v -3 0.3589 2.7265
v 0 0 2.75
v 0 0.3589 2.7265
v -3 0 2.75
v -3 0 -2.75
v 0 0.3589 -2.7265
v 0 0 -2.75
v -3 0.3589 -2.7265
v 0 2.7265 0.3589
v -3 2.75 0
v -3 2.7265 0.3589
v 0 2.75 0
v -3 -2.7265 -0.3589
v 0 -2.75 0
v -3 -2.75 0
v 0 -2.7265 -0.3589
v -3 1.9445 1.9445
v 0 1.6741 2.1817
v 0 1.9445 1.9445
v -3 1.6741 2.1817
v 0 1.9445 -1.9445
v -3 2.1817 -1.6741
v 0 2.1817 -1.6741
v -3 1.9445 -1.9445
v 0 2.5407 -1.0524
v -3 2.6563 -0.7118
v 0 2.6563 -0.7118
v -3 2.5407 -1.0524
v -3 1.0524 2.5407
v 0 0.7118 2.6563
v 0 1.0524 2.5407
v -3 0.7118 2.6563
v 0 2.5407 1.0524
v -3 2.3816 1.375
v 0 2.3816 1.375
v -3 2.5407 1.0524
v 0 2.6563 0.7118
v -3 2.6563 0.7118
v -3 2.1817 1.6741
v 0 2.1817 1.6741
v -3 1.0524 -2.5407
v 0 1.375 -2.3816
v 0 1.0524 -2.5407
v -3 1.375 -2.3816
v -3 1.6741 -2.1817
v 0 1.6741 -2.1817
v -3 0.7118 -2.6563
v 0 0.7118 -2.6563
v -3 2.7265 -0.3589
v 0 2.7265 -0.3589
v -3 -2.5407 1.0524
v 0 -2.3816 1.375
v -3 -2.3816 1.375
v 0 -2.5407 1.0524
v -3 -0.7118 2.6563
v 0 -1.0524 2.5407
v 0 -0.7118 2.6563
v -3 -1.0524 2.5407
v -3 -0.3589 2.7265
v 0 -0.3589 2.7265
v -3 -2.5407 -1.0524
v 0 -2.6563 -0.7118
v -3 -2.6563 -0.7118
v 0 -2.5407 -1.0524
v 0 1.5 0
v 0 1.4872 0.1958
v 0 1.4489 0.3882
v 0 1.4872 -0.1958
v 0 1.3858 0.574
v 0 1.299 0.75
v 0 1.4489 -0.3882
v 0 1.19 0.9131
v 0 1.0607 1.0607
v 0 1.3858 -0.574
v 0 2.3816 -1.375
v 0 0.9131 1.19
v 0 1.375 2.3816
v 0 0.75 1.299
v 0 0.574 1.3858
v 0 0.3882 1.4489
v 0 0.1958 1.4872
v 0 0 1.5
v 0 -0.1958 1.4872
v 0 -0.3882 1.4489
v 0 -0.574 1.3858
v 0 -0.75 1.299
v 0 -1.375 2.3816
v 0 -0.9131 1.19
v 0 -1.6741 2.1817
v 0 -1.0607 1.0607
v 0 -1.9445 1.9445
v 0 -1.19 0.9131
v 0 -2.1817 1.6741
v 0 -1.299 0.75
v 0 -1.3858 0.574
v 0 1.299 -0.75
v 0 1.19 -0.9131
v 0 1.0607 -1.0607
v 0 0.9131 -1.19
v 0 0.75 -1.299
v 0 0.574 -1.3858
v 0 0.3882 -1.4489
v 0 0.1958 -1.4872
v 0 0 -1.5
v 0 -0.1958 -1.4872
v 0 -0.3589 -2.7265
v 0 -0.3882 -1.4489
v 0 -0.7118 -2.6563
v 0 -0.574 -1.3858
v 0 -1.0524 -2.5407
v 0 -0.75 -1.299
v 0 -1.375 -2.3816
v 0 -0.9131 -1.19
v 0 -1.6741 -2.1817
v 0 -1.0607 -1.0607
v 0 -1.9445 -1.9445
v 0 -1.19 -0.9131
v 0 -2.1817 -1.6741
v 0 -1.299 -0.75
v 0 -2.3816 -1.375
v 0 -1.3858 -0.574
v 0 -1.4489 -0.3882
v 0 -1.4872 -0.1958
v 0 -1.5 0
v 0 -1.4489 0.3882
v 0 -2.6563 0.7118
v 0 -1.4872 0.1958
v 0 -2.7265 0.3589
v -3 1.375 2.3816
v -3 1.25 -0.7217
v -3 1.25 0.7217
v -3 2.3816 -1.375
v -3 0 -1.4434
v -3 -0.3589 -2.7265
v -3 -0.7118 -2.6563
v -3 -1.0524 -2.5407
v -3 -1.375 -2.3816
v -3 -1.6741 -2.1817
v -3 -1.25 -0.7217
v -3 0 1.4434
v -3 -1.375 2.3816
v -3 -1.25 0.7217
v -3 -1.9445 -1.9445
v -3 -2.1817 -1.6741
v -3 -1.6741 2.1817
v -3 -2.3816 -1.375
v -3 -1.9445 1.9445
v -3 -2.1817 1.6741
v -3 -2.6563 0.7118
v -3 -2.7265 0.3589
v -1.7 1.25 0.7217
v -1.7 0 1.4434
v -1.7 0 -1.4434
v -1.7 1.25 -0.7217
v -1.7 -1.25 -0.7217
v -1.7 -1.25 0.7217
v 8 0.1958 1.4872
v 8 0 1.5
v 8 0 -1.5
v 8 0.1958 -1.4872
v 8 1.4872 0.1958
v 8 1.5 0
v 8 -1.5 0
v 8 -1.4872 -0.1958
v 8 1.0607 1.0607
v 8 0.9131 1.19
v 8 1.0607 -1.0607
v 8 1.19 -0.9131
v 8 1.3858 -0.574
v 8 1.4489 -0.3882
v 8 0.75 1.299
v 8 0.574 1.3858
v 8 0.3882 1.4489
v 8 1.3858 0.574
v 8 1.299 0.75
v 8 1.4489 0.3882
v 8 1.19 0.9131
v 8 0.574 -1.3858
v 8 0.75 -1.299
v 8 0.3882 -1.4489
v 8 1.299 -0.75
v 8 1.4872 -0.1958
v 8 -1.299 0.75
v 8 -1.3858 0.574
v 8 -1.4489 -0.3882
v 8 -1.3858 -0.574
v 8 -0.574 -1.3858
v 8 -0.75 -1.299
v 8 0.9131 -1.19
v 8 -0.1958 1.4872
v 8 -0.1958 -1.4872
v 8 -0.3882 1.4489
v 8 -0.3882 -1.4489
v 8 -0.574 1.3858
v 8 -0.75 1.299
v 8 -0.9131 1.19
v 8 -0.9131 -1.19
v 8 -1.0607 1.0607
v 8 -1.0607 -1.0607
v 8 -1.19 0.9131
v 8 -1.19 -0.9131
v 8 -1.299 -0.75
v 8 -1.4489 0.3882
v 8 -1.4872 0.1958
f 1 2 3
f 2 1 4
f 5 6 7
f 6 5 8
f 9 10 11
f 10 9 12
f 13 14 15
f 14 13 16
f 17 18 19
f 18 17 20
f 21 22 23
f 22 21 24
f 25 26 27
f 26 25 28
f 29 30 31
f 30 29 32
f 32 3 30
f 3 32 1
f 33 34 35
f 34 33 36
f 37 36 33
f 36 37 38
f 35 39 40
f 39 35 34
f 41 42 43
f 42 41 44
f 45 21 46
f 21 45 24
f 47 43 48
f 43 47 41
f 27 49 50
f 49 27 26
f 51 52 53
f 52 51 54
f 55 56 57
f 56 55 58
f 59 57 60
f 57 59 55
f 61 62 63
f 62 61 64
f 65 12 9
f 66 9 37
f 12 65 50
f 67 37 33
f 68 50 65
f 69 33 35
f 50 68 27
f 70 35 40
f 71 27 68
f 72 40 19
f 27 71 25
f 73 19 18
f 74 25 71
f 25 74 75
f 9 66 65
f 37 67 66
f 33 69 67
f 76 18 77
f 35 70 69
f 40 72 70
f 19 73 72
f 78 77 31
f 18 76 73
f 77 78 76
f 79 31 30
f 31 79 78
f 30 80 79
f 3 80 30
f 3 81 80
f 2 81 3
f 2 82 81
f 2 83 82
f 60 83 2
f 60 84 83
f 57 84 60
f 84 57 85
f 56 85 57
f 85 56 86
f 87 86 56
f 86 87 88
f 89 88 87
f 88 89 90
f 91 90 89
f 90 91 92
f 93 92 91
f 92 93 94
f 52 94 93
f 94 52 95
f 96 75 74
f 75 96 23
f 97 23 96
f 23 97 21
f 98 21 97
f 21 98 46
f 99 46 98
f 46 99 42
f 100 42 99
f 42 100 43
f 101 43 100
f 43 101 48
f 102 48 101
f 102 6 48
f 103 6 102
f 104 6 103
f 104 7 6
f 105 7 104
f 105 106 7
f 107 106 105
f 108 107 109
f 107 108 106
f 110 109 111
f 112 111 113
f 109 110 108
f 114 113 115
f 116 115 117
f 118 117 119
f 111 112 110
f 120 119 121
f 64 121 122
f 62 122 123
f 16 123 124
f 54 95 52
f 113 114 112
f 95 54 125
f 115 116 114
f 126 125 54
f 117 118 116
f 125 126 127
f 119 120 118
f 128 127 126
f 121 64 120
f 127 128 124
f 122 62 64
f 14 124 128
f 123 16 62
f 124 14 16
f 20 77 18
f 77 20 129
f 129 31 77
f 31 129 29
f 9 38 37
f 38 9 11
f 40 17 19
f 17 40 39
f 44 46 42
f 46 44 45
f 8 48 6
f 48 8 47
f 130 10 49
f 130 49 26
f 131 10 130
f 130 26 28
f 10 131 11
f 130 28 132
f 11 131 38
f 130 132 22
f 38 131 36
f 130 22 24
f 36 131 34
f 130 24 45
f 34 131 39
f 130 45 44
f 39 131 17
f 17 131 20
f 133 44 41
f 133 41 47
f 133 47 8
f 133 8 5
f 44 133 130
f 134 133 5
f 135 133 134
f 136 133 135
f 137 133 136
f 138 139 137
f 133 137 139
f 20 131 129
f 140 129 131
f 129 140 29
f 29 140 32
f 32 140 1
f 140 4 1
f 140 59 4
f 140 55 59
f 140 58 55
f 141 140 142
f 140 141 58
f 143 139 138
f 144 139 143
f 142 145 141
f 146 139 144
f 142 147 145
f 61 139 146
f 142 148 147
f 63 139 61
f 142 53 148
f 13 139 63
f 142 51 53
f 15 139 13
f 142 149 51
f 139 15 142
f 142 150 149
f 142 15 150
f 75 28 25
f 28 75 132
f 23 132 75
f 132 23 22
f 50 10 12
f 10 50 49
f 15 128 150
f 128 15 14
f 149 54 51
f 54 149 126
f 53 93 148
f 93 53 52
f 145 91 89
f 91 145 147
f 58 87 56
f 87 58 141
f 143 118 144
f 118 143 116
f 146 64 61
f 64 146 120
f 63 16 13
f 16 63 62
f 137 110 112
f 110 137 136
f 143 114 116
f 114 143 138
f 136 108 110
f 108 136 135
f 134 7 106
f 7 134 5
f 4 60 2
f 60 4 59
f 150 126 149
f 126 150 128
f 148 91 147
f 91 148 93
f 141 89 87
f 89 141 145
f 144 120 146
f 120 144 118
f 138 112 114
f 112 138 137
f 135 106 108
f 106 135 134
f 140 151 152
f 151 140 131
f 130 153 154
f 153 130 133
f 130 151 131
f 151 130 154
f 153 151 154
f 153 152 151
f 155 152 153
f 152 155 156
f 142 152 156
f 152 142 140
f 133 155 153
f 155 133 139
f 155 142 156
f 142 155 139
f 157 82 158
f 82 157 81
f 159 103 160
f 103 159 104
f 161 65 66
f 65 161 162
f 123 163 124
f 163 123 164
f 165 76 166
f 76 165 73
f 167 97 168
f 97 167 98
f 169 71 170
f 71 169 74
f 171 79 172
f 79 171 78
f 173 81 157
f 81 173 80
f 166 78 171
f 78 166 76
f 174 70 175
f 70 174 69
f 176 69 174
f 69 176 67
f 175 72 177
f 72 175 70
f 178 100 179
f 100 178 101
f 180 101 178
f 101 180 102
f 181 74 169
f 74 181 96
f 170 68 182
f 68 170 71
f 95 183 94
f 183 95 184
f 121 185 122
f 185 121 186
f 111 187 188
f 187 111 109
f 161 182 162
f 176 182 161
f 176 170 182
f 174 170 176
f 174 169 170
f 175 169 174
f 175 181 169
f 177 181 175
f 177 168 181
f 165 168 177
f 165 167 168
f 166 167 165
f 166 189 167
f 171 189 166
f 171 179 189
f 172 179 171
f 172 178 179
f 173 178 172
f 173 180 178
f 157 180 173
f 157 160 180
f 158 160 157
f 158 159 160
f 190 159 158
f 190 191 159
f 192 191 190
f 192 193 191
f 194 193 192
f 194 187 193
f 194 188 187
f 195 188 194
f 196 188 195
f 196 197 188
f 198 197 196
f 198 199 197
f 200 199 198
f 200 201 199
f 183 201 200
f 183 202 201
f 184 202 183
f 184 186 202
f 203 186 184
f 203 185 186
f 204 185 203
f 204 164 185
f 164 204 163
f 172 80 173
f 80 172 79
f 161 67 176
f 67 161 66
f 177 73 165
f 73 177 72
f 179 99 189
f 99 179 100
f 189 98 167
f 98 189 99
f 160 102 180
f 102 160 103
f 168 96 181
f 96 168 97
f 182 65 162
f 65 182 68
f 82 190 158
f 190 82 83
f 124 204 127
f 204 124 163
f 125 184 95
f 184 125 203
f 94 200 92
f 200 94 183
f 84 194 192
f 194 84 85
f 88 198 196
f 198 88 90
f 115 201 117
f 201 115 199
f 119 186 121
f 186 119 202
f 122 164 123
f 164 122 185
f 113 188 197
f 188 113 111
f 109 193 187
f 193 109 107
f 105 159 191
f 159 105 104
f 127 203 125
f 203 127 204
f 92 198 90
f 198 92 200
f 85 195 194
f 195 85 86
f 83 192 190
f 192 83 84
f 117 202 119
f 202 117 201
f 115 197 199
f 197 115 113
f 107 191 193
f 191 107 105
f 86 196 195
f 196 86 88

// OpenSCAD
// file: ../../../lib/nutsnbolts/data-access.scad
// Norm Nuts and Bolts - a OpenSCAD library
// Copyright (C) 2012  Johannes Kneer

// This program is free software: you can redistribute it and/or modify
// it under the terms of the GNU General Public License as published by
// the Free Software Foundation, either version 3 of the License, or
// (at your option) any later version.

// This program is distributed in the hope that it will be useful,
// but WITHOUT ANY WARRANTY; without even the implied warranty of
// MERCHANTABILITY or FITNESS FOR A PARTICULAR PURPOSE.  See the
// GNU General Public License for more details.

// You should have received a copy of the GNU General Public License
// along with this program.  If not, see <http://www.gnu.org/licenses/>.


// DATABASE ACCESS FUNCTIONS AND CONSTANTS



// == CONSTANTS ==

// screw table access keys
_NB_S_DESC            = 0;
_NB_S_FAMKEY			    = 1;
_NB_S_LENGTH          = 2;
_NB_S_NOTHREAD_LENGTH = 3;

_NB_F_DESC			      = 0;
_NB_F_OUTER_DIA       = 1;
_NB_F_INNER_DIA       = 2;
_NB_F_LEAD            = 3;
_NB_F_KEY             = 4;
_NB_F_KEY_DEPTH       = 5;
_NB_F_HEAD_HEIGHT     = 6;
_NB_F_HEAD_DIA        = 7;
_NB_F_NUT_KEY         = 8;
_NB_F_NUT_HEIGHT      = 9;
_NB_F_PITCH_FINE      = 10;
_NB_F_PITCH_MEDIUM    = 11;
_NB_F_PITCH_COARSE    = 12;


// == FUNCTIONS ==

// _get_screw("descriptor")   with descriptor = M8x25
//   find the line for a general object in the data matrix

function _get_screw(n) = data_screw[search([n], data_screw)[0]];
function _get_screw_fam(n) = data_screw_fam[search([_get_screw(n)[_NB_S_FAMKEY]], data_screw_fam)[0]];

function _get_fam(n) = data_screw_fam[search([n], data_screw_fam)[0]];


// _get_XXXXX("descriptor") functions
// find a single property in the database

function _get_desc(n)        = _get_screw(n)[_NB_S_DESC];
function _get_famkey(n)         = _get_screw(n)[_NB_S_FAMKEY];
function _get_length(n)      = _get_screw(n)[_NB_S_LENGTH];
function _get_nt_length(n)   = _get_screw(n)[_NB_S_NOTHREAD_LENGTH];

function _get_outer_dia(n)   = _get_screw_fam(n)[_NB_F_OUTER_DIA];
function _get_inner_dia(n)   = _get_screw_fam(n)[_NB_F_INNER_DIA];
function _get_lead(n)        = _get_screw_fam(n)[_NB_F_LEAD];
function _get_head_height(n) = _get_screw_fam(n)[_NB_F_HEAD_HEIGHT];
function _get_head_dia(n)    = _get_screw_fam(n)[_NB_F_HEAD_DIA];
function _get_nut_key(n)     = _get_screw_fam(n)[_NB_F_NUT_KEY];
function _get_nut_height(n)  = _get_screw_fam(n)[_NB_F_NUT_HEIGHT];
function _get_fine_pitch(n)  = _get_screw_fam(n)[_NB_F_PITCH_FINE];
function _get_medium_pitch(n)  = _get_screw_fam(n)[_NB_F_PITCH_MEDIUM];
function _get_coarse_pitch(n)  = _get_screw_fam(n)[_NB_F_PITCH_COARSE];
// main file
/**********************************************************************************************************************
 **
 ** parts/vitamins/screw_M3x8.scad
 **
 ** This file renders a screw of the dimensions specified by the file name.
 **
 **********************************************************************************************************************/

include <../../../lib/nutsnbolts/cyl_head_bolt.scad>;

$fn = 48;
rotate([0, -90, 0])
	screw("M3x8"); 
